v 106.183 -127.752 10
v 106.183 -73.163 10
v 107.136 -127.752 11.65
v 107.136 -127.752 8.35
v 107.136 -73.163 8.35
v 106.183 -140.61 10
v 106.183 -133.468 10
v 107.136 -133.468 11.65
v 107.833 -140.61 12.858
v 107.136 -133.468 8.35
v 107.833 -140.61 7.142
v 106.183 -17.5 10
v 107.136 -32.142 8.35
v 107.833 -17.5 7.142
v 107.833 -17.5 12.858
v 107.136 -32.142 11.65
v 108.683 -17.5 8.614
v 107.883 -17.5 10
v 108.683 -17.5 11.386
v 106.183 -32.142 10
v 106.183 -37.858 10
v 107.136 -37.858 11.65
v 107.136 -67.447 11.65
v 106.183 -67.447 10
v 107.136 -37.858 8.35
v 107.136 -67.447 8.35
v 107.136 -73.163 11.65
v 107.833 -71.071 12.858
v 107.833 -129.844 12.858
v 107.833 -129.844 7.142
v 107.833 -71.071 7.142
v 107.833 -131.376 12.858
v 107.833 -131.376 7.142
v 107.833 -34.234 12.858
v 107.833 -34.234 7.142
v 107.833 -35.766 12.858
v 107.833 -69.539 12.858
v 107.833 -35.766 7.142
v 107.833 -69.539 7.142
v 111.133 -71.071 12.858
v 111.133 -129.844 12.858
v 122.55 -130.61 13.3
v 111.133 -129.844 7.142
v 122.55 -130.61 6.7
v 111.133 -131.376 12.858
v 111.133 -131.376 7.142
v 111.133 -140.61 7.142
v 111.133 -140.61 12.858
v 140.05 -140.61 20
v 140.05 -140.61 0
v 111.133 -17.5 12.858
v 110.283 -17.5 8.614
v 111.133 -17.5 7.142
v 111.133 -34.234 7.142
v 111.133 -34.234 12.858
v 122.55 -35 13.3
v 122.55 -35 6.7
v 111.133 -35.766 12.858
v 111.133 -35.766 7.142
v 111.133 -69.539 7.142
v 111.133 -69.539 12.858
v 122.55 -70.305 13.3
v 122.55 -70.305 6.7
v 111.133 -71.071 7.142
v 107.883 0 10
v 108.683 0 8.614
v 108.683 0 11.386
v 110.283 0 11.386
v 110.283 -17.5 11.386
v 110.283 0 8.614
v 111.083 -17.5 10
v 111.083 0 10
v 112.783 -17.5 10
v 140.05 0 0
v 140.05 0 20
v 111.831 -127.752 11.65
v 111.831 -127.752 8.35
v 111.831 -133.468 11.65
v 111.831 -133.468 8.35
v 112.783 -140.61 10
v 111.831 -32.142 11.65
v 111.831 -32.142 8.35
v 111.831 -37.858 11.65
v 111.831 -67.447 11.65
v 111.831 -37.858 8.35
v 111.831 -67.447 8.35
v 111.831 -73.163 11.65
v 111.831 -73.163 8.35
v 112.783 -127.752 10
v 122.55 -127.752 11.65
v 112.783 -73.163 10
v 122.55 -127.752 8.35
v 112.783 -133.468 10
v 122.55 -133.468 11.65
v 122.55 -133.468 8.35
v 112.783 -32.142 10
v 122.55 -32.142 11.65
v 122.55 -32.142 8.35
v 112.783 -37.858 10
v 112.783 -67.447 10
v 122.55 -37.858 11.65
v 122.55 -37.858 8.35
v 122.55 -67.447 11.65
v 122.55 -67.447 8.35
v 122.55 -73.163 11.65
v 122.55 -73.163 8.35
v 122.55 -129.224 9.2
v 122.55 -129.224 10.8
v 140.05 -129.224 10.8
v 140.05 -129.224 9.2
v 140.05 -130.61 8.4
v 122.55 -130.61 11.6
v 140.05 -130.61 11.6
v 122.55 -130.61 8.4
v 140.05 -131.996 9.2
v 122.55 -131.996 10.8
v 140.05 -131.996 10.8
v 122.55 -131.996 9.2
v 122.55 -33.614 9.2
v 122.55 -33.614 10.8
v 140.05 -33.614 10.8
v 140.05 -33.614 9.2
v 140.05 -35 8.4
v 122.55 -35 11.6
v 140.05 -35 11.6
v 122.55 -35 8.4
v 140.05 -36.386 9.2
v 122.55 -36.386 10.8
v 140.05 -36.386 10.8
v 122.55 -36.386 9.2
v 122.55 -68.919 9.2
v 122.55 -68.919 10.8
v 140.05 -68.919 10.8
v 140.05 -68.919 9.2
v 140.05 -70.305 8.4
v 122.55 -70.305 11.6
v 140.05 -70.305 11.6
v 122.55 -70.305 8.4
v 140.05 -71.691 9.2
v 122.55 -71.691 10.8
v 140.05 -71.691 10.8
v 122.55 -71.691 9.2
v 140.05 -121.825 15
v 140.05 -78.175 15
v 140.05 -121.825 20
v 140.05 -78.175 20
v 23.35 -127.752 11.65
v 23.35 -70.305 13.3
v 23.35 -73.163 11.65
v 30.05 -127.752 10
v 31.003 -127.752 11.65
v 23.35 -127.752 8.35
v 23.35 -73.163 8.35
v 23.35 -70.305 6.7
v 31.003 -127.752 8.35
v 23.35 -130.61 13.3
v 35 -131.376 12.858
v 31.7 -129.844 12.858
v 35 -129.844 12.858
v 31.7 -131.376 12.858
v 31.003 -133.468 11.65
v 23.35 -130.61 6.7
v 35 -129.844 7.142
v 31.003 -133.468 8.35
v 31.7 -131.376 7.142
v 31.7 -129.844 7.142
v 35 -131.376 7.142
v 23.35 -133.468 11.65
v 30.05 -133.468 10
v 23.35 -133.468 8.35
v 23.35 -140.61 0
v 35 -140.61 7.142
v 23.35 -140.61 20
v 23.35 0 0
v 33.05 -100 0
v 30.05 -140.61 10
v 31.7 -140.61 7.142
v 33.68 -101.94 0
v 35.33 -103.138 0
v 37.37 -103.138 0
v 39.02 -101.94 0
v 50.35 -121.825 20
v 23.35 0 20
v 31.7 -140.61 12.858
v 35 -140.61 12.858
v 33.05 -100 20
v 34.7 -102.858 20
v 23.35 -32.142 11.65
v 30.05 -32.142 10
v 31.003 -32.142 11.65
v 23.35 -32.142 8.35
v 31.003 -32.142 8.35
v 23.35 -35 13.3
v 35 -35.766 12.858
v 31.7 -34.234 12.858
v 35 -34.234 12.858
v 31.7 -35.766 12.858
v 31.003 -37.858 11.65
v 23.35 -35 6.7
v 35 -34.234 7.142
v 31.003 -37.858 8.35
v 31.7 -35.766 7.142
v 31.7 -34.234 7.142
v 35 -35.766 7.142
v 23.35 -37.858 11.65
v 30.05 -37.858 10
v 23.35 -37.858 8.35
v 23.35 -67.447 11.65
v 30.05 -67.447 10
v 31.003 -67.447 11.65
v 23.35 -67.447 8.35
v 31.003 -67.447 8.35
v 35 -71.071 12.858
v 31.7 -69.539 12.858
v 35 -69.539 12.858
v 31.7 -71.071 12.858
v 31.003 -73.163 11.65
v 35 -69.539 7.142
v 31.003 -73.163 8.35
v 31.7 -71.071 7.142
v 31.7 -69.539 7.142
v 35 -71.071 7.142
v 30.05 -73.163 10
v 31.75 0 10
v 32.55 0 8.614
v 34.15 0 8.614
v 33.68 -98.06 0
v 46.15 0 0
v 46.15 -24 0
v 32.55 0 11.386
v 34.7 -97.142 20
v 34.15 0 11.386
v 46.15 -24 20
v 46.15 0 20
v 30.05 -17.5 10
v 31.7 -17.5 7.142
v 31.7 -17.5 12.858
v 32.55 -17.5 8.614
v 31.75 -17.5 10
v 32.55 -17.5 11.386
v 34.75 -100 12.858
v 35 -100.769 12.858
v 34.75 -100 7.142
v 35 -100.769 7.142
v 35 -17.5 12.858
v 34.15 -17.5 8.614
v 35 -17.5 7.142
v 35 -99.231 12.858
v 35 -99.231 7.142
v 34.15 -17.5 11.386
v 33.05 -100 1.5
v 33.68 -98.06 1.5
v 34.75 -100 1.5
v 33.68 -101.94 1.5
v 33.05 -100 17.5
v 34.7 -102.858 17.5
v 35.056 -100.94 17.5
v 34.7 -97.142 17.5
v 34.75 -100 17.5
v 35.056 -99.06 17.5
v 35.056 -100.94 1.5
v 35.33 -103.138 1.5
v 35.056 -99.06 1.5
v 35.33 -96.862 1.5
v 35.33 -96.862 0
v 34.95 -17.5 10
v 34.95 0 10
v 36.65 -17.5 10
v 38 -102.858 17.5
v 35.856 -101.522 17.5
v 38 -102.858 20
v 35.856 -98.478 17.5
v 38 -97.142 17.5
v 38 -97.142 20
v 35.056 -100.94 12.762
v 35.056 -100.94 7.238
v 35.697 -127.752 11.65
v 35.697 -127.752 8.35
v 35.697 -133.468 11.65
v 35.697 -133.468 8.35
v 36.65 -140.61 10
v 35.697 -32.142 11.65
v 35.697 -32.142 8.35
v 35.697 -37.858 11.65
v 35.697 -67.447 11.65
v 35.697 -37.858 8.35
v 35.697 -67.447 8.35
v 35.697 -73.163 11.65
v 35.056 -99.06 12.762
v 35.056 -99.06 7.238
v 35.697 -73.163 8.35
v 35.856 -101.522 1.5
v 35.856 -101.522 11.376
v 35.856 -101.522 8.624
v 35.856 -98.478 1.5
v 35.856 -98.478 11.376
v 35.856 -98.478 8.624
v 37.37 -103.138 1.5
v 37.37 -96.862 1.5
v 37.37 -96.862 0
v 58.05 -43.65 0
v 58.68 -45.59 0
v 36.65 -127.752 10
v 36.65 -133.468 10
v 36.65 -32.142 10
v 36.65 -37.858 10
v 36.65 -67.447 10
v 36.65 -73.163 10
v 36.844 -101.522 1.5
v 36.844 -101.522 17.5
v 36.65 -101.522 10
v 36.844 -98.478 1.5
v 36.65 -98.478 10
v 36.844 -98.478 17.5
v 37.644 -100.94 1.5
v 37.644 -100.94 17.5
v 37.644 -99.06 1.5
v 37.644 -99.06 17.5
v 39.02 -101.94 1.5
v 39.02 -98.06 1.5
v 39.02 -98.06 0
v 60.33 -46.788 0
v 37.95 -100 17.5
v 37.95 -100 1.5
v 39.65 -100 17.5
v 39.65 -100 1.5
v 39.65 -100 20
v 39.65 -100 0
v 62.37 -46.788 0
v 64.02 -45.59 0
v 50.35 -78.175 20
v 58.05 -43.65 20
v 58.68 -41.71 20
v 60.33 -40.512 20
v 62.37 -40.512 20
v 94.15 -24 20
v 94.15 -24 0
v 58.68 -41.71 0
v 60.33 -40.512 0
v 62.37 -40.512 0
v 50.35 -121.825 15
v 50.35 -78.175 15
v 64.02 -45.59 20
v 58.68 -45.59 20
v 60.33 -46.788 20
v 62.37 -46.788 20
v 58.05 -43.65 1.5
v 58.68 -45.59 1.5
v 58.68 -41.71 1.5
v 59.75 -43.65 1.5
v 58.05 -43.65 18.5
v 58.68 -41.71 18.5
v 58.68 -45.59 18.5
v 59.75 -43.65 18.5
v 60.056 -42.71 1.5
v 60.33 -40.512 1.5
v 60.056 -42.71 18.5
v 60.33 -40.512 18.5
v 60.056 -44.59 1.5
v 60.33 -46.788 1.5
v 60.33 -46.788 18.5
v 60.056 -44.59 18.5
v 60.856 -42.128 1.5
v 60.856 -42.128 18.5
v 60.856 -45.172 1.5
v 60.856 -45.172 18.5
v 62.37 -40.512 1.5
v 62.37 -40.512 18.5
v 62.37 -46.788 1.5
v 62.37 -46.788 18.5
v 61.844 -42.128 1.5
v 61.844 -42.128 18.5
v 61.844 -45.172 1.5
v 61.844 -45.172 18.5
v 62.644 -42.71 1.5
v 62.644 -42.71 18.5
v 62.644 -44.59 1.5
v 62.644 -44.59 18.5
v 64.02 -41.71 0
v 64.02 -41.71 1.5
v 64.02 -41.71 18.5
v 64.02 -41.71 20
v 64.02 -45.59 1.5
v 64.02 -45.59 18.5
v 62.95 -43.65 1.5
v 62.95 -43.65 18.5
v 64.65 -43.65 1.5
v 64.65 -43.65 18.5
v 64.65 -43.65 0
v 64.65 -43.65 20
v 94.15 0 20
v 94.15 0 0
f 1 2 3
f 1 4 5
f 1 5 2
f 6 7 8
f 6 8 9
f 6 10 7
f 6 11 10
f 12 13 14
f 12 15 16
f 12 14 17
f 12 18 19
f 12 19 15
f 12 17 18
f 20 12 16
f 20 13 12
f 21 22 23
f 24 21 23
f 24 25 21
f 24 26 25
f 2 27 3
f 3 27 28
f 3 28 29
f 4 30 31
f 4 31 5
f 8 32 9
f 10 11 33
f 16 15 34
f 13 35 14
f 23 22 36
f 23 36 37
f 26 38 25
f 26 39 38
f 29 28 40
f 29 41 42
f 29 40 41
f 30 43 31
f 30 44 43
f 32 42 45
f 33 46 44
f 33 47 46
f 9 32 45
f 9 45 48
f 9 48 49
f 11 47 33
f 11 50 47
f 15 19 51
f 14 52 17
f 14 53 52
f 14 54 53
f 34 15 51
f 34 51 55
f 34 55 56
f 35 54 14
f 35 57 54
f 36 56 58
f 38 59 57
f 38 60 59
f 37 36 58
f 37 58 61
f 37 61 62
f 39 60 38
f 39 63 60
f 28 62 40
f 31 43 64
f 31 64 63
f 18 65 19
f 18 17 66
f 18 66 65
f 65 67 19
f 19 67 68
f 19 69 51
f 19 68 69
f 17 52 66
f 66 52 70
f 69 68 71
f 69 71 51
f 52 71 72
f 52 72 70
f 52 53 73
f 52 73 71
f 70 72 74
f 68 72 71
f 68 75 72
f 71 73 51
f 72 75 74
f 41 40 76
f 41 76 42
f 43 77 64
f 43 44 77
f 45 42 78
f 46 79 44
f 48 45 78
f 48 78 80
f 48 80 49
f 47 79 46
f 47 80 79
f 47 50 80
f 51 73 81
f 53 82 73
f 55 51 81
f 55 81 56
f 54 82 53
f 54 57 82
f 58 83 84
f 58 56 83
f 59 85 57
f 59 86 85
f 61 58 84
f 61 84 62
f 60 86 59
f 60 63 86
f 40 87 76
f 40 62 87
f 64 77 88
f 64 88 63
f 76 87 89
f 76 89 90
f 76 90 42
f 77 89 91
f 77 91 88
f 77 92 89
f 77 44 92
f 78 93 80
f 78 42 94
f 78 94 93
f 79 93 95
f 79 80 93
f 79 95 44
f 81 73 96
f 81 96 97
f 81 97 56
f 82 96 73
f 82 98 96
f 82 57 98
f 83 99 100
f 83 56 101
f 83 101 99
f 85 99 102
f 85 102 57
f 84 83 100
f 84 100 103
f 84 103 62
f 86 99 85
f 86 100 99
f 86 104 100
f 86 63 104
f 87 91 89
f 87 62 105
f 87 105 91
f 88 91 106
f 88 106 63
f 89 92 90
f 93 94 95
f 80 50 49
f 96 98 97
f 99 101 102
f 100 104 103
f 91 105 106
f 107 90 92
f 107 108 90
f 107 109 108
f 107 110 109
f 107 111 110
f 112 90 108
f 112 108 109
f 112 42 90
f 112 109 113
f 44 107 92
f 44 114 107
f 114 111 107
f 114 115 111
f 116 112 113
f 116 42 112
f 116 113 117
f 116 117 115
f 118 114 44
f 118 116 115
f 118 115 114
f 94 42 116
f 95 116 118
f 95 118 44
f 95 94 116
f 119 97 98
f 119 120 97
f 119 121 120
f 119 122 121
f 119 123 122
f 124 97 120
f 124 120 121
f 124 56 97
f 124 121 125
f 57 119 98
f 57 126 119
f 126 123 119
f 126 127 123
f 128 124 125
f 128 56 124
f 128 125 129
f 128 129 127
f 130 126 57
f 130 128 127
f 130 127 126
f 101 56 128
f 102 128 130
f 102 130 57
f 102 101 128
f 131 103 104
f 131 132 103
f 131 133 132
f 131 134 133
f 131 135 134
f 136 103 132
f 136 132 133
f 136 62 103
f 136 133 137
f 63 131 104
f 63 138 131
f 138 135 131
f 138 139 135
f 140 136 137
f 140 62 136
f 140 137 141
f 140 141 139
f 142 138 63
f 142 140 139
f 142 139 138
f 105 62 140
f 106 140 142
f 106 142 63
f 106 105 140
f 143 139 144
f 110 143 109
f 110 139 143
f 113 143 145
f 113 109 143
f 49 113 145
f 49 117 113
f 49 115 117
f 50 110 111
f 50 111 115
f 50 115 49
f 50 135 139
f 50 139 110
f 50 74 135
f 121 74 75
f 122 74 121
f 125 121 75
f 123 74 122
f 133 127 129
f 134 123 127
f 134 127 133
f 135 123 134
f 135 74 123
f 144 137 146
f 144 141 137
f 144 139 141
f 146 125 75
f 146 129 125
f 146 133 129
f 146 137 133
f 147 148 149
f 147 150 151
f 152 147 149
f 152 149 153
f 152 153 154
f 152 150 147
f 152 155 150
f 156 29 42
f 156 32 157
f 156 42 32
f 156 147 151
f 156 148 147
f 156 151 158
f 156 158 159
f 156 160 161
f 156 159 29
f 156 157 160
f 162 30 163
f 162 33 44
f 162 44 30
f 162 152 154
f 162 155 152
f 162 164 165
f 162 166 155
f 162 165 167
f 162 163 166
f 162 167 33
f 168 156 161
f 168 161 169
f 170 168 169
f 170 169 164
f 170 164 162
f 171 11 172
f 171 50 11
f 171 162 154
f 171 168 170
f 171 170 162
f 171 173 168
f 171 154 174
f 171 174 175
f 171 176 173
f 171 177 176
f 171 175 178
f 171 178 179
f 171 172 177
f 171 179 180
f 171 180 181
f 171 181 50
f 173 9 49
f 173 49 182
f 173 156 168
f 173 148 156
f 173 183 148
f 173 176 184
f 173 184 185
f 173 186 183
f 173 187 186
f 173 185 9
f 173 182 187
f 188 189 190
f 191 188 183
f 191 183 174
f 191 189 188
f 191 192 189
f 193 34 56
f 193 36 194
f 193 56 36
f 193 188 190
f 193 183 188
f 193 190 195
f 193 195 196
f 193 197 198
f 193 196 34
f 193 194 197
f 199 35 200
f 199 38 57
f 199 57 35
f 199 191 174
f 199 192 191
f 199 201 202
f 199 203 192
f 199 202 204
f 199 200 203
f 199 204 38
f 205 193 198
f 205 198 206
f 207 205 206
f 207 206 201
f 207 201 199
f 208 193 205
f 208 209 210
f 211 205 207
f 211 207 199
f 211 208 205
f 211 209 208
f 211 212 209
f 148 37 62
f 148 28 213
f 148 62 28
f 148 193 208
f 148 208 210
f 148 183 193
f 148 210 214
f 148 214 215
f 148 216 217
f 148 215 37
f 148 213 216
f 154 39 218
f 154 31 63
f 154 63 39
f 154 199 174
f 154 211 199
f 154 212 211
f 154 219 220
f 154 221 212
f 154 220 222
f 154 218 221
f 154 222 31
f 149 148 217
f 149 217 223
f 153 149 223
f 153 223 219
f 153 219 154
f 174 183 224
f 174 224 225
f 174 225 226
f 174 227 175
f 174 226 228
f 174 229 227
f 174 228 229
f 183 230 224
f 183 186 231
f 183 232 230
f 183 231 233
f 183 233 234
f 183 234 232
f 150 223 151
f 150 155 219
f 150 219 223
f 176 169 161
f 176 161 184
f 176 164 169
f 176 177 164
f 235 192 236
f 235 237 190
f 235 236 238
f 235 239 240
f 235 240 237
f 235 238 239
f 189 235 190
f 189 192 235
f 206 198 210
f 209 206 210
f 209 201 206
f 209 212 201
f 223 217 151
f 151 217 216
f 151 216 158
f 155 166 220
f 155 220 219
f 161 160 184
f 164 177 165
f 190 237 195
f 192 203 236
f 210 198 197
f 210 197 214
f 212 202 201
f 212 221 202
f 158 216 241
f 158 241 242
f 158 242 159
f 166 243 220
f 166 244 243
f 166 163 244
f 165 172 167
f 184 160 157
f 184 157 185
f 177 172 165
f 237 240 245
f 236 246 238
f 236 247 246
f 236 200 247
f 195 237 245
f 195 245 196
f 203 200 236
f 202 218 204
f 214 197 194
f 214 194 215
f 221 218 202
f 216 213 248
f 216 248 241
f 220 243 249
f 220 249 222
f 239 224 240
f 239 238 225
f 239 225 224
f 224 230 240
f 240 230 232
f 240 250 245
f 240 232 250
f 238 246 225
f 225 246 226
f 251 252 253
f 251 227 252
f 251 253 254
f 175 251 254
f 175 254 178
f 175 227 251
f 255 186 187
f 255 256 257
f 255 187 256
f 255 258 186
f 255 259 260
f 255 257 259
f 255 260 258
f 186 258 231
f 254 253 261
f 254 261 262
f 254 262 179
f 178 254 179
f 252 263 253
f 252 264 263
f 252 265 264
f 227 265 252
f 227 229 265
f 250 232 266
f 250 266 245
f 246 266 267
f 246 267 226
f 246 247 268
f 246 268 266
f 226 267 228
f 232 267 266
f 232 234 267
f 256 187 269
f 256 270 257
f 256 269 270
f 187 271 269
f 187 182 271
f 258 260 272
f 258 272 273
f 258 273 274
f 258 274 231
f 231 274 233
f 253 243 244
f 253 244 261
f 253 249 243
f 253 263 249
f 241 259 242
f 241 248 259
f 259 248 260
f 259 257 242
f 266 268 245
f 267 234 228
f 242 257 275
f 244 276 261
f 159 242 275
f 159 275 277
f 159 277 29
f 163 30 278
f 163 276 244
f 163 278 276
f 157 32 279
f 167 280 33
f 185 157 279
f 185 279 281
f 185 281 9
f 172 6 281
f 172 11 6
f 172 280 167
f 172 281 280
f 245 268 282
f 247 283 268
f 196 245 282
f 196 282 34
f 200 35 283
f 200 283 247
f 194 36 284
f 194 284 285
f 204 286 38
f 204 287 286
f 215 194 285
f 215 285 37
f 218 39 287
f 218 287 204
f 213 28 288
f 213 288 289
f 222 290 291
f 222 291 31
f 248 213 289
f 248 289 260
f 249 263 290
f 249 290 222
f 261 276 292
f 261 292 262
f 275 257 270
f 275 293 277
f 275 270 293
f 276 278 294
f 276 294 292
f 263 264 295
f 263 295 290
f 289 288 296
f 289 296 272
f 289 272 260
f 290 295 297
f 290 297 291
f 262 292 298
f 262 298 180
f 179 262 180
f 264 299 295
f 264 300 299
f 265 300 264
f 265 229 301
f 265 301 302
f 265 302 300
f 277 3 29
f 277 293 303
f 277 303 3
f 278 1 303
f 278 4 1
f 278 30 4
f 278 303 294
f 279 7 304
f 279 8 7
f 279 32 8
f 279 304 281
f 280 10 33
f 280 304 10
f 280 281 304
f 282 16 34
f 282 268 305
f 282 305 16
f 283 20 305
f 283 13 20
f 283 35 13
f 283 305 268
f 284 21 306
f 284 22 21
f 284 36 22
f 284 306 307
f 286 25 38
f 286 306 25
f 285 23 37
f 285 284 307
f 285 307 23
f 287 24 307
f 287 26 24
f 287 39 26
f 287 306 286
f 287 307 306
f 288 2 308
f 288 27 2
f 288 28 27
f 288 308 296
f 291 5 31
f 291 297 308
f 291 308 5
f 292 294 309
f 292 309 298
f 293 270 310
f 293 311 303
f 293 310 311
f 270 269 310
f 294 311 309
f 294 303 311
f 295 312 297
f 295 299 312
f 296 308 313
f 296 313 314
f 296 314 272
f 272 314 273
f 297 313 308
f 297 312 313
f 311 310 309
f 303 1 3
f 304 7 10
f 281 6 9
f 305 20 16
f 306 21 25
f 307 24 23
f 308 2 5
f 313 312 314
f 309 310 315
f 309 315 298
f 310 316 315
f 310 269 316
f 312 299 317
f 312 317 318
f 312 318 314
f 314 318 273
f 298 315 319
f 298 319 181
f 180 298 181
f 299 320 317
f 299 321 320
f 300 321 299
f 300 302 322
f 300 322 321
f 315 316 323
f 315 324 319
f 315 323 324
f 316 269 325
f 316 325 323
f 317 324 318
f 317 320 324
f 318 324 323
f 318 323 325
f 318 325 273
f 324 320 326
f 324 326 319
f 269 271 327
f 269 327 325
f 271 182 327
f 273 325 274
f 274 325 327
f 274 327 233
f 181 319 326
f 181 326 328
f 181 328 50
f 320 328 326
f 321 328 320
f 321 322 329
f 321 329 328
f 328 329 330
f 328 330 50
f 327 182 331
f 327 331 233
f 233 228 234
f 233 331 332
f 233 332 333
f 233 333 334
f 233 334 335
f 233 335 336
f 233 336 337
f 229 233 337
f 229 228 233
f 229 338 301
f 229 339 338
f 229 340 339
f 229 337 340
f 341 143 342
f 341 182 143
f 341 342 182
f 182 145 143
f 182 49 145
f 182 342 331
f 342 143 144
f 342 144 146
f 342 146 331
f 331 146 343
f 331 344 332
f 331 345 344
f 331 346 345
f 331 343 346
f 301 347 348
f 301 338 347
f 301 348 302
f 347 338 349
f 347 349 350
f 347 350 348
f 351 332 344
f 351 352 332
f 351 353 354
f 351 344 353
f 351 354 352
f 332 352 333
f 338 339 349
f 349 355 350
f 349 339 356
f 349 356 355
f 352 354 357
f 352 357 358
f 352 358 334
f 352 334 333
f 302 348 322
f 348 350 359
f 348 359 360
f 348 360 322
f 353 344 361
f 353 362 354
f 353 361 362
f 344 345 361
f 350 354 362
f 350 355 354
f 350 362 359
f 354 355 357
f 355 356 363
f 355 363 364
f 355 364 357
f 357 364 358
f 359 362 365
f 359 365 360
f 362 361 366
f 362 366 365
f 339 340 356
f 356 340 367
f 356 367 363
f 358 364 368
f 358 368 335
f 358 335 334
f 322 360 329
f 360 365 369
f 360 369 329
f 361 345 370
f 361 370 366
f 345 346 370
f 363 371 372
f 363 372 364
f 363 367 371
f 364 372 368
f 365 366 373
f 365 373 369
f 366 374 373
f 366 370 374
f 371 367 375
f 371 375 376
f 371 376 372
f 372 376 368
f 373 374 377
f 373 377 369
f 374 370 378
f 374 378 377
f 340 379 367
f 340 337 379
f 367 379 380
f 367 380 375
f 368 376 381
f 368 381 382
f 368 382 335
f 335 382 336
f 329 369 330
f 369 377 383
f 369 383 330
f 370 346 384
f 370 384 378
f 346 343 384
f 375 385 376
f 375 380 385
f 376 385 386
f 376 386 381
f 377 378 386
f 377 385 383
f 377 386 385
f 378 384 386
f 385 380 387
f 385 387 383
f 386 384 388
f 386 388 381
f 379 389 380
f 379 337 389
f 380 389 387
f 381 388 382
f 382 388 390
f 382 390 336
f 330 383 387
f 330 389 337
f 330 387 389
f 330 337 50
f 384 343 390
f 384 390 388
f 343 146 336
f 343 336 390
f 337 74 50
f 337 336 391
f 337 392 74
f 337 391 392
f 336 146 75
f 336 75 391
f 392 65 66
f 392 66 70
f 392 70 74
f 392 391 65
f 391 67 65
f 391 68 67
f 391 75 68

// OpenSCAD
// file: ../888_1018.scad
include <../parameters.scad>
draft = true;

accumulator_plate_thickness = 20;
accumulator_plate_length = width_of_accumulator + accumulator_holder_width*3;
accumulator_plate_accumulator_axis_offset = 100; // how far from autogyro center pipe center of battery is.
accumulator_plate_move = -25; // posuv akumulatoru dozadu
accumulator_plate_width = accumulator_plate_accumulator_axis_offset + depth_of_accumulator;
accumulator_plate_bearing_sink = 6.4; // Jak moc bude zapuštěno ložisko pro připevnění na střechu auta.
//  cover_pilon_position
module 888_1018(draft){
  posun = move_of_accumulator + accumulator_holder_width/2 + accumulator_holder_thickness/2 + height_666_1026 + global_clearance/2;

rotate([0, 180, 180])
  translate([posun, 0, 0])
    difference(){

      hull(){
        translate([-accumulator_plate_length/2, -accumulator_plate_width, 0])
            cube([accumulator_plate_length, accumulator_plate_width, accumulator_plate_thickness]);
        translate([-accumulator_plate_length/2 + accumulator_plate_move, -accumulator_plate_width, 0])
            cube([accumulator_plate_length, accumulator_plate_width, accumulator_plate_thickness]);
      }

      #union (){
      //šrouby pro připevnění k letadlu
          translate([-width_of_accumulator/2 - accumulator_holder_width/2 - accumulator_holder_thickness/2, -height_of_accumulator, 0])
              cylinder(h = 100, r = M3_screw_diameter/2, $fn = draft ? 10 : 20, center = true);

          translate([width_of_accumulator/2 + accumulator_holder_width/2 + accumulator_holder_thickness/2, -height_of_accumulator, 0])
              cylinder(h = 100, r = M3_screw_diameter/2, $fn = draft ? 10 : 20, center = true);

      //Zapuštění hlav šroubů pro připevnění k letadlu
          translate([-width_of_accumulator/2 - accumulator_holder_width/2 - accumulator_holder_thickness/2, -height_of_accumulator, accumulator_plate_thickness])
              cylinder(h = M3_screw_head_height, d = M3_nut_diameter, $fn = draft ? 10 : 20, center = true);

          translate([width_of_accumulator/2 + accumulator_holder_width/2 + accumulator_holder_thickness/2, -height_of_accumulator, accumulator_plate_thickness])
              cylinder(h = M3_screw_head_height, d = M3_nut_diameter, $fn = draft ? 10 : 20, center = true);

      // odecteni kostky, v miste, kde je pripevnene kolecko
          translate([height_666_1026 - move_of_accumulator - width_of_accumulator/2 - 5, -5 - height_666_1004/2, - hull_y_size/2])
                 cube([coupling_width_666_1004 + 10, height_666_1004 + 10, hull_y_size]);
      }

      translate([accumulator_plate_move, 0, 0])
      union (){
        //akumulátor
          translate([-width_of_accumulator/2, -accumulator_plate_accumulator_axis_offset-height_of_accumulator/2, accumulator_plate_thickness - sink_of_accumulator])
              cube([width_of_accumulator, height_of_accumulator, depth_of_accumulator]);

        //šrouby pro připevnění akumulátorů
          translate([width_of_accumulator/2 + accumulator_holder_width/2 + accumulator_holder_thickness/2, -accumulator_plate_accumulator_axis_offset, 0])
              cylinder(h = 100, r = M3_screw_diameter/2, $fn = draft ? 10 : 20, center = true);

          translate([- width_of_accumulator/2 - accumulator_holder_width/2 - accumulator_holder_thickness/2, -accumulator_plate_accumulator_axis_offset, 0])
              cylinder(h = 100, r = M3_screw_diameter/2, $fn = draft ? 10 : 20, center = true);


          //díry pro zapuštění hlaviček šroubů
          translate([width_of_accumulator/2 + accumulator_holder_width/2 + accumulator_holder_thickness/2 - accumulator_plate_move, -height_of_accumulator, 0])
              cylinder(h = M3_screw_head_height, d = M3_nut_diameter, $fn = draft ? 10 : 20, center = true);

          translate([-width_of_accumulator/2 - accumulator_holder_width/2 - accumulator_holder_thickness/2 - accumulator_plate_move, -height_of_accumulator, 0])
              cylinder(h = M3_screw_head_height, d = M3_nut_diameter, $fn = draft ? 10 : 20, center = true);

          translate([width_of_accumulator/2 + accumulator_holder_width/2 + accumulator_holder_thickness/2, -accumulator_plate_accumulator_axis_offset, 0])
              cylinder(h = M3_screw_head_height, d = M3_nut_diameter, $fn = draft ? 10 : 20, center = true);

          translate([-width_of_accumulator/2 - accumulator_holder_width/2 - accumulator_holder_thickness/2, -accumulator_plate_accumulator_axis_offset, 0])
              cylinder(h = M3_screw_head_height, d = M3_nut_diameter, $fn = draft ? 10 : 20, center = true);

      // díry pro matky pro sroub drzici obruce pres baterie..
          translate([width_of_accumulator/2 + accumulator_holder_width/2 + accumulator_holder_thickness/2, -accumulator_plate_accumulator_axis_offset, accumulator_plate_thickness])
              cylinder(h = 5, d = M3_nut_diameter, $fn = 6, center = true);

          translate([-width_of_accumulator/2 - accumulator_holder_width/2 - accumulator_holder_thickness/2, -accumulator_plate_accumulator_axis_offset, accumulator_plate_thickness])
              cylinder(h = 5, d = M3_nut_diameter, $fn = 6, center = true);


        }

        // Srouby pro sesroubovani skrz....

        for (i=[accumulator_plate_length/2 - 20, accumulator_plate_length/7, -accumulator_plate_length/6, - accumulator_plate_length/2 + accumulator_plate_move + 10]) {
          translate([i, 0, accumulator_plate_thickness/2])
            union(){
              rotate([90,0,0])
                cylinder(d= M3_screw_diameter, h= 200);

            translate([0, -35/2, 0])
              rotate([90,0,0])
                cylinder(d= M3_nut_diameter, h= 200, $fn= 6);
            }
        }

        for (i=[-35, -accumulator_plate_width/2, -accumulator_plate_width+10]) {
          translate([0, i, accumulator_plate_thickness/2])
            union(){
              translate([-150, 0, 0])
                rotate([0,90,0])
                  cylinder(d= M3_screw_diameter, h= 300);

              translate([35/2, 0, 0])
                rotate([0,90,0])
                  cylinder(d= M3_nut_diameter, h= 200, $fn= 6);

              translate([-35/2 - 200, 0, 0])
                rotate([0,90,0])
                  cylinder(d= M3_nut_diameter, h= 200, $fn= 6);
            }
        }


    // pro přidělání příruby ložiska
    translate([-posun+center_of_gravity_position[0],center_of_gravity_position[1],-global_clearance/2]){
      cylinder(d = bearing_efsm_10_db+1, h=accumulator_plate_thickness + global_clearance);

      translate([- bearing_efsm_10_h / 2, - bearing_efsm_10_h / 2, accumulator_plate_thickness-accumulator_plate_bearing_sink])
        cube(bearing_efsm_10_h);

      for (i=[[1, 1], [-1, 1], [1, -1], [-1, -1]]) {
        translate([i[0]*bearing_efsm_10_m/2, i[1]*bearing_efsm_10_m/2, 0]){
          cylinder(d = bearing_efsm_10_n, h=accumulator_plate_thickness + global_clearance);
          rotate([0,0,-i[0]*15])
            cylinder(d = M5_nut_diameter, h= M5_head_height+1, $fn=6);
        }
      }
    }

    }
}


888_1018(draft);
mirror([0,1,0])
    888_1018(draft);
// main file
include <../../parameters.scad>
use <../888_1018.scad>

draft = false;

posuv = move_of_accumulator + accumulator_holder_width/2 + accumulator_holder_thickness/2 + height_666_1026 + global_clearance/2;
difference(){
  rotate([180, 0, 0])
    888_1018(1, draft);
  translate([posuv, -500+ global_clearance, -global_clearance])
    cube(500);
}
